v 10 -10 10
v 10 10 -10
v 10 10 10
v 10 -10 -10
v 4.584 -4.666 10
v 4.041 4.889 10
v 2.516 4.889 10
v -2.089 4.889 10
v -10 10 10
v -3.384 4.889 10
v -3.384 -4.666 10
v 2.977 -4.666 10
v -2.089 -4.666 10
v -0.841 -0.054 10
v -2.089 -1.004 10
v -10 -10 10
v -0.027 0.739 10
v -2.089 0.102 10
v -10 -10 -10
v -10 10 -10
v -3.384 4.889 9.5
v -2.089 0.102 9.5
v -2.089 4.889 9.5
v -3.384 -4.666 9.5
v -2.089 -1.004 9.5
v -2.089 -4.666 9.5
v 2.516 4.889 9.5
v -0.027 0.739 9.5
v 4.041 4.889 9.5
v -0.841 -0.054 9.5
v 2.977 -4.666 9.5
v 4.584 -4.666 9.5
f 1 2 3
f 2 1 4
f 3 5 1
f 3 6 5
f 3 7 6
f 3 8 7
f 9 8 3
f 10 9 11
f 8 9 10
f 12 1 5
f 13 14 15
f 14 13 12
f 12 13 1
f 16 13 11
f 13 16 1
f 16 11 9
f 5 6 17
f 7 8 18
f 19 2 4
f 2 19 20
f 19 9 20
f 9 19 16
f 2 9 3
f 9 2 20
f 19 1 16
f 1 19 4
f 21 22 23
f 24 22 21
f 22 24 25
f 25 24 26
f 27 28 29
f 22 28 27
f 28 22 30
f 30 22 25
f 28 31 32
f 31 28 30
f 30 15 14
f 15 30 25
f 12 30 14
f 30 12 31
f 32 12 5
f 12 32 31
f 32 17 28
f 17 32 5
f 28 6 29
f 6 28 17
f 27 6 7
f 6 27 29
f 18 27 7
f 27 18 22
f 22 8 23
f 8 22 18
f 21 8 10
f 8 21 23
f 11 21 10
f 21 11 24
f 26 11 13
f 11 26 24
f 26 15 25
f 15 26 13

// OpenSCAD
// Test cube — 20mm calibration cube
$fn = 32;

difference() {
    cube([20, 20, 20], center = true);
    
    // Letter "K" on top face — a simple marker
    translate([0, 0, 9.5])
        linear_extrude(height = 1)
            text("K", size = 10, halign = "center", valign = "center");
}
